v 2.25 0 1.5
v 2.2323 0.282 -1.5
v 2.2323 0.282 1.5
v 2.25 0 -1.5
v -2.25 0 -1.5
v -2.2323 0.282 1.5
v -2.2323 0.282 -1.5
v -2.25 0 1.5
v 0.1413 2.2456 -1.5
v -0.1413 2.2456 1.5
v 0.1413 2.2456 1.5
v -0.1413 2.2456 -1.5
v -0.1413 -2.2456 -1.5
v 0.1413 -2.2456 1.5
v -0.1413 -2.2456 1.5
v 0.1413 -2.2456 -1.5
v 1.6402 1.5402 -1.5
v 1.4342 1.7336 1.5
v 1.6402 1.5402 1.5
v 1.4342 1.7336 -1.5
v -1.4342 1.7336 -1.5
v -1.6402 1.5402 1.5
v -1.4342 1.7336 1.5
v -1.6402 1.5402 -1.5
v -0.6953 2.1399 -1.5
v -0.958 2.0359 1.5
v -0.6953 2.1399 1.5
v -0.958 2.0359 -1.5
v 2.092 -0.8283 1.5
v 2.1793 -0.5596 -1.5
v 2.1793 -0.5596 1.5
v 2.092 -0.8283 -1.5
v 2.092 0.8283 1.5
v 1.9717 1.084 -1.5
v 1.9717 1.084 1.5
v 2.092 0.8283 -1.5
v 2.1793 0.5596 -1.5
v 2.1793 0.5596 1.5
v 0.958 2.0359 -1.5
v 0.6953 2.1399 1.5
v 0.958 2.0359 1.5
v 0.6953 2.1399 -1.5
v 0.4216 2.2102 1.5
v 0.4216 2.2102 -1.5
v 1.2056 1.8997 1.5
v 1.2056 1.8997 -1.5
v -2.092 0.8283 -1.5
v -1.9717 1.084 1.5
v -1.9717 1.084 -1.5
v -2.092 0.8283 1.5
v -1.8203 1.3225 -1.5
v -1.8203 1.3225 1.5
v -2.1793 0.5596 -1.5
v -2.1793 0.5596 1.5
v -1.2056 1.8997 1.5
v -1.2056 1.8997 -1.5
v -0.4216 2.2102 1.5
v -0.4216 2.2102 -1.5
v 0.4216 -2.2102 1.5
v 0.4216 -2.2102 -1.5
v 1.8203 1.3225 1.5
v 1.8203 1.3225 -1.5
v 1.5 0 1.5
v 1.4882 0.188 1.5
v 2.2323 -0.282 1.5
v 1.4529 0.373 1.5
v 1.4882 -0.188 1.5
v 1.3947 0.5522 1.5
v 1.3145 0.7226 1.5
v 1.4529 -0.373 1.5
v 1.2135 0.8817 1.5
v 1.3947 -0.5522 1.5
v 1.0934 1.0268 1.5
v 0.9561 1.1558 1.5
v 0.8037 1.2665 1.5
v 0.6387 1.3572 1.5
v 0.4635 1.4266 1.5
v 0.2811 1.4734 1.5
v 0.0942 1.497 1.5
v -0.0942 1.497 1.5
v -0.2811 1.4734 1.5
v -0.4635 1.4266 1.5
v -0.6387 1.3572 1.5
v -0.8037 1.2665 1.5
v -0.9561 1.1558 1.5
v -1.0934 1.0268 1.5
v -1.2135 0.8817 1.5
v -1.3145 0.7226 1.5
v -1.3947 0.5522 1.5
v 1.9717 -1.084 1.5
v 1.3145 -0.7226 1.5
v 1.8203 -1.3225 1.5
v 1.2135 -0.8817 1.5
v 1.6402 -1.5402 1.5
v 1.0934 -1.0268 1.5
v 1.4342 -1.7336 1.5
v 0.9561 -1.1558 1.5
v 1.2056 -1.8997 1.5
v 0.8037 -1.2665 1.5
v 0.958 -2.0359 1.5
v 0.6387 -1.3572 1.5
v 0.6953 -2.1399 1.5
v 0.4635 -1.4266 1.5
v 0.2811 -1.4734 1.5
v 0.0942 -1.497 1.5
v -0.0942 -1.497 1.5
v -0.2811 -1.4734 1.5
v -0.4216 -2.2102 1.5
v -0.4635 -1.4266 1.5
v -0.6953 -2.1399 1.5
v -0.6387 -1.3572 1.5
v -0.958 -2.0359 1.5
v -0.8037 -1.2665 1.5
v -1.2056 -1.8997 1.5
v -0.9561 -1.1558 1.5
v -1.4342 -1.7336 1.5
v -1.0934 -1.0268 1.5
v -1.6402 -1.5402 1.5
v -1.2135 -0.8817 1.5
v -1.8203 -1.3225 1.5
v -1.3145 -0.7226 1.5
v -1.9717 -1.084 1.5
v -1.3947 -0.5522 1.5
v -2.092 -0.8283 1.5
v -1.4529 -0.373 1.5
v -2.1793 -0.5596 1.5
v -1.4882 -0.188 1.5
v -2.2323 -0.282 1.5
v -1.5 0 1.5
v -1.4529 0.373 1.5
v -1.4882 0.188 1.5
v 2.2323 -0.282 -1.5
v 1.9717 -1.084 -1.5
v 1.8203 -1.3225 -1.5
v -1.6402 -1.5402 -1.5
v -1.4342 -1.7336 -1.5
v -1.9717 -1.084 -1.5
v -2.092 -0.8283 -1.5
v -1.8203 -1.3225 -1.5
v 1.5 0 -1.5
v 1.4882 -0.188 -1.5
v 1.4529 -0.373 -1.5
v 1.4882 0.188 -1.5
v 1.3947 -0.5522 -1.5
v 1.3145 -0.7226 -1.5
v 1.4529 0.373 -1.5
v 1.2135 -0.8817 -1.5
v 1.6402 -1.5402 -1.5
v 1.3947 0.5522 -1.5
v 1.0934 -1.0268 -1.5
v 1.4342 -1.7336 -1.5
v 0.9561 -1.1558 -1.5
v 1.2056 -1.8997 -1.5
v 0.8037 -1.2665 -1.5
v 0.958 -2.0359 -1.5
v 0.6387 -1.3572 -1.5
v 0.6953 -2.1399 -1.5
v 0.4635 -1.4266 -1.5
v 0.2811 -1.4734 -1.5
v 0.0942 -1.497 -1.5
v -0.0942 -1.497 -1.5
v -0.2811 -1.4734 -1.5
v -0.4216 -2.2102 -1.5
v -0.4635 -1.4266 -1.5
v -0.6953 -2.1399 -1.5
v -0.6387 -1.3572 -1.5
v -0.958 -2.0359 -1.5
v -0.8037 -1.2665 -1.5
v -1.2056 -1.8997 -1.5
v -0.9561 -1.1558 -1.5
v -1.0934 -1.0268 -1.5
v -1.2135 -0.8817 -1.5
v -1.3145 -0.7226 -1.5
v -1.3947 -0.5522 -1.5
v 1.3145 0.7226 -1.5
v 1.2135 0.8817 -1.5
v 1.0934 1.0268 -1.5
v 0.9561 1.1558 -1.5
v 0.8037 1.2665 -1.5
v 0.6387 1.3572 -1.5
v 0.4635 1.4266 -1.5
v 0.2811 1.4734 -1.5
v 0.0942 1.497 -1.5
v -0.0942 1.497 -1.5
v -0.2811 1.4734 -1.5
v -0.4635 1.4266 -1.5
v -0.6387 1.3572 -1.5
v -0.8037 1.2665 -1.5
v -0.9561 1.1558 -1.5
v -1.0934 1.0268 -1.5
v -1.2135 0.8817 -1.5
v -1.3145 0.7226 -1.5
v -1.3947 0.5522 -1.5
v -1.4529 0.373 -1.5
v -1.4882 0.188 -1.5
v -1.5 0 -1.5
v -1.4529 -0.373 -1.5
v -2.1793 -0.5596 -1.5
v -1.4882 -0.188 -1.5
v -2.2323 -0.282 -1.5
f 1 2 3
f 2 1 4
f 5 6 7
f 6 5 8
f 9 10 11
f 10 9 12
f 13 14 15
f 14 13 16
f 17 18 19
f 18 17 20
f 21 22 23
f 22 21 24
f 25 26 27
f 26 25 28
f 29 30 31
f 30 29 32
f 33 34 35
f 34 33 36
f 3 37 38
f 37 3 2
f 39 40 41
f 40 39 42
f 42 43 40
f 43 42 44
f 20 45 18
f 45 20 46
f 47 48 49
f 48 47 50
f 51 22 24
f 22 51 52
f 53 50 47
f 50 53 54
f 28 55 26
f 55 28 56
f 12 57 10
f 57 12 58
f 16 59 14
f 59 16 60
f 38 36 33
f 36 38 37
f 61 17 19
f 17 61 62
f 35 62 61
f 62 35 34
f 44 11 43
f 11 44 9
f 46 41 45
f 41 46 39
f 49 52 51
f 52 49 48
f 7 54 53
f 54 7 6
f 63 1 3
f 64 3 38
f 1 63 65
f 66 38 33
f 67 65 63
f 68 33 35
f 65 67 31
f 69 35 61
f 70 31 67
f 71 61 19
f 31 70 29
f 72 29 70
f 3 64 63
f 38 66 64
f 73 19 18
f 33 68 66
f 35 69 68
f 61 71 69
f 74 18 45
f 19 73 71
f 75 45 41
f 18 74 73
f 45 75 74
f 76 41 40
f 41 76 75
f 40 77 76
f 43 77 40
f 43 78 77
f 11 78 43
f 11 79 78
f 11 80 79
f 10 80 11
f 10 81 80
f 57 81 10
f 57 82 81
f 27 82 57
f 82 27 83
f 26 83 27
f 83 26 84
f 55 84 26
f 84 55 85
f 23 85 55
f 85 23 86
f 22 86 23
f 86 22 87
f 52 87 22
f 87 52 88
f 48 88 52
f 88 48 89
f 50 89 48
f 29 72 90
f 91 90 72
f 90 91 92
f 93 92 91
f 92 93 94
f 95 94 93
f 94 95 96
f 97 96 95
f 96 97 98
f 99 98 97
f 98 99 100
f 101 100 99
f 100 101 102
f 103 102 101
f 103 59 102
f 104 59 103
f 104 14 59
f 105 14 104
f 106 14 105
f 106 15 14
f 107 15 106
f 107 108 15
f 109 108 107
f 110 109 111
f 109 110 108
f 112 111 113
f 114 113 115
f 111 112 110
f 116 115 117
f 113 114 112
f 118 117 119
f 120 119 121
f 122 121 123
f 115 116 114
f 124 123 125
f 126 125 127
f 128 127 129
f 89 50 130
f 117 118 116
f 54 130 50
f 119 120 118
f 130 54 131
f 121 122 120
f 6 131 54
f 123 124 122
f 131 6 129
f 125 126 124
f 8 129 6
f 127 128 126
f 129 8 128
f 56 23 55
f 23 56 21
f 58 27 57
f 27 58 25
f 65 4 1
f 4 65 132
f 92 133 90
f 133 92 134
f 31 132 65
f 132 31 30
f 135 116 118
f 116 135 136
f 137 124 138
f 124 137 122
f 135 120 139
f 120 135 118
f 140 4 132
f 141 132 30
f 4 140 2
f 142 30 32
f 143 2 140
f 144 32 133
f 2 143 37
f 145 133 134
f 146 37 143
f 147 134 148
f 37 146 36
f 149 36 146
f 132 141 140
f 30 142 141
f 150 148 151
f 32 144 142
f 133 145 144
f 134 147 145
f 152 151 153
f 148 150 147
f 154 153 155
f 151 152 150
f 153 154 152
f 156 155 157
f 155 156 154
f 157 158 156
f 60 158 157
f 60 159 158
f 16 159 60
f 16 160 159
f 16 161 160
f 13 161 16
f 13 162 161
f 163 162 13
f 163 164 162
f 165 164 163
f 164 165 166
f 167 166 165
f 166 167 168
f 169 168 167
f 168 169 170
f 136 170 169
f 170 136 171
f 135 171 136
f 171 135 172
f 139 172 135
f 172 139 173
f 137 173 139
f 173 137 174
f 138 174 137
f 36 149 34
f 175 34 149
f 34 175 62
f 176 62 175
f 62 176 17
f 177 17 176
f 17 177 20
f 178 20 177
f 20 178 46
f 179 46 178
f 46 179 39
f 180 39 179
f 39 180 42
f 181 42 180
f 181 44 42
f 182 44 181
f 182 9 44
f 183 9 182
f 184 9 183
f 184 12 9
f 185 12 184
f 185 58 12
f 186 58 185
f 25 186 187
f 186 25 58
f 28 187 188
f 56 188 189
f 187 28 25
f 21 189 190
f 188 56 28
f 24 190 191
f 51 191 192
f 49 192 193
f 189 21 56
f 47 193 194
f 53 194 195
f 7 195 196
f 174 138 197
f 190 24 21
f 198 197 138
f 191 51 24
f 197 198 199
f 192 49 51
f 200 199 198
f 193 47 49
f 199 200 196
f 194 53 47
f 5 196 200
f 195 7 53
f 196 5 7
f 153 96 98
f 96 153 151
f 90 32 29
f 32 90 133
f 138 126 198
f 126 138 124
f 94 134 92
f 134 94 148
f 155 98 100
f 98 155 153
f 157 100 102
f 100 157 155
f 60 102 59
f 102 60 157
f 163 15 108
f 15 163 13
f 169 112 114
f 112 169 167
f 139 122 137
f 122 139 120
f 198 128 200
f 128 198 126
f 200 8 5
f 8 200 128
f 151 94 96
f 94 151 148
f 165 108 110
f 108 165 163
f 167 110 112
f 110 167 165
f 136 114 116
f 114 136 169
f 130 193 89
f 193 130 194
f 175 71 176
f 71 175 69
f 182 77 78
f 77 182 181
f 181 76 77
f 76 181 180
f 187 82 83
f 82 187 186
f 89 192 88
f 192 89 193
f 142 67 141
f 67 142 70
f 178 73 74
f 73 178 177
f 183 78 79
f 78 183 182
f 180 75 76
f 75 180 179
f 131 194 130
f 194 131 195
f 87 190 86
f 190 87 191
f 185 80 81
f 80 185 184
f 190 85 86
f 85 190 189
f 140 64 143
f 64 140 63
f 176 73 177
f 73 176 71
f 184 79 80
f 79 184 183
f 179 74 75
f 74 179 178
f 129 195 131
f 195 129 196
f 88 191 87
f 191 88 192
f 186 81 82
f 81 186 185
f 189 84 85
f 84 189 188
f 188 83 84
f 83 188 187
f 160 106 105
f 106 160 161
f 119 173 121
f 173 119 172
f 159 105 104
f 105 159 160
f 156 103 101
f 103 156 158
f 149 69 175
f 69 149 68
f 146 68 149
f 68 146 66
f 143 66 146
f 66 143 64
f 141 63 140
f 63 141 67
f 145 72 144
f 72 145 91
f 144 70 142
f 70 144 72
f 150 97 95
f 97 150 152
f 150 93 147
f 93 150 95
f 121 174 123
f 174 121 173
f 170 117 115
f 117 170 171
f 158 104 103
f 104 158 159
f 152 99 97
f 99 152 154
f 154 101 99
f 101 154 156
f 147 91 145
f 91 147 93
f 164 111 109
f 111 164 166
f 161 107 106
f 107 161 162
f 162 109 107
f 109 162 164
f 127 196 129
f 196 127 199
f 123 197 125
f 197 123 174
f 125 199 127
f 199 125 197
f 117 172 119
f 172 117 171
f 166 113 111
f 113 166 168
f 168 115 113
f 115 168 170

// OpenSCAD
$fn = 50;


difference() {
	union() {
		translate(v = [0, 0, -1.5000000000]) {
			cylinder(h = 3, r = 2.2500000000);
		}
	}
	union() {
		translate(v = [0, 0, -100.0000000000]) {
			cylinder(h = 200, r = 1.5000000000);
		}
	}
}
